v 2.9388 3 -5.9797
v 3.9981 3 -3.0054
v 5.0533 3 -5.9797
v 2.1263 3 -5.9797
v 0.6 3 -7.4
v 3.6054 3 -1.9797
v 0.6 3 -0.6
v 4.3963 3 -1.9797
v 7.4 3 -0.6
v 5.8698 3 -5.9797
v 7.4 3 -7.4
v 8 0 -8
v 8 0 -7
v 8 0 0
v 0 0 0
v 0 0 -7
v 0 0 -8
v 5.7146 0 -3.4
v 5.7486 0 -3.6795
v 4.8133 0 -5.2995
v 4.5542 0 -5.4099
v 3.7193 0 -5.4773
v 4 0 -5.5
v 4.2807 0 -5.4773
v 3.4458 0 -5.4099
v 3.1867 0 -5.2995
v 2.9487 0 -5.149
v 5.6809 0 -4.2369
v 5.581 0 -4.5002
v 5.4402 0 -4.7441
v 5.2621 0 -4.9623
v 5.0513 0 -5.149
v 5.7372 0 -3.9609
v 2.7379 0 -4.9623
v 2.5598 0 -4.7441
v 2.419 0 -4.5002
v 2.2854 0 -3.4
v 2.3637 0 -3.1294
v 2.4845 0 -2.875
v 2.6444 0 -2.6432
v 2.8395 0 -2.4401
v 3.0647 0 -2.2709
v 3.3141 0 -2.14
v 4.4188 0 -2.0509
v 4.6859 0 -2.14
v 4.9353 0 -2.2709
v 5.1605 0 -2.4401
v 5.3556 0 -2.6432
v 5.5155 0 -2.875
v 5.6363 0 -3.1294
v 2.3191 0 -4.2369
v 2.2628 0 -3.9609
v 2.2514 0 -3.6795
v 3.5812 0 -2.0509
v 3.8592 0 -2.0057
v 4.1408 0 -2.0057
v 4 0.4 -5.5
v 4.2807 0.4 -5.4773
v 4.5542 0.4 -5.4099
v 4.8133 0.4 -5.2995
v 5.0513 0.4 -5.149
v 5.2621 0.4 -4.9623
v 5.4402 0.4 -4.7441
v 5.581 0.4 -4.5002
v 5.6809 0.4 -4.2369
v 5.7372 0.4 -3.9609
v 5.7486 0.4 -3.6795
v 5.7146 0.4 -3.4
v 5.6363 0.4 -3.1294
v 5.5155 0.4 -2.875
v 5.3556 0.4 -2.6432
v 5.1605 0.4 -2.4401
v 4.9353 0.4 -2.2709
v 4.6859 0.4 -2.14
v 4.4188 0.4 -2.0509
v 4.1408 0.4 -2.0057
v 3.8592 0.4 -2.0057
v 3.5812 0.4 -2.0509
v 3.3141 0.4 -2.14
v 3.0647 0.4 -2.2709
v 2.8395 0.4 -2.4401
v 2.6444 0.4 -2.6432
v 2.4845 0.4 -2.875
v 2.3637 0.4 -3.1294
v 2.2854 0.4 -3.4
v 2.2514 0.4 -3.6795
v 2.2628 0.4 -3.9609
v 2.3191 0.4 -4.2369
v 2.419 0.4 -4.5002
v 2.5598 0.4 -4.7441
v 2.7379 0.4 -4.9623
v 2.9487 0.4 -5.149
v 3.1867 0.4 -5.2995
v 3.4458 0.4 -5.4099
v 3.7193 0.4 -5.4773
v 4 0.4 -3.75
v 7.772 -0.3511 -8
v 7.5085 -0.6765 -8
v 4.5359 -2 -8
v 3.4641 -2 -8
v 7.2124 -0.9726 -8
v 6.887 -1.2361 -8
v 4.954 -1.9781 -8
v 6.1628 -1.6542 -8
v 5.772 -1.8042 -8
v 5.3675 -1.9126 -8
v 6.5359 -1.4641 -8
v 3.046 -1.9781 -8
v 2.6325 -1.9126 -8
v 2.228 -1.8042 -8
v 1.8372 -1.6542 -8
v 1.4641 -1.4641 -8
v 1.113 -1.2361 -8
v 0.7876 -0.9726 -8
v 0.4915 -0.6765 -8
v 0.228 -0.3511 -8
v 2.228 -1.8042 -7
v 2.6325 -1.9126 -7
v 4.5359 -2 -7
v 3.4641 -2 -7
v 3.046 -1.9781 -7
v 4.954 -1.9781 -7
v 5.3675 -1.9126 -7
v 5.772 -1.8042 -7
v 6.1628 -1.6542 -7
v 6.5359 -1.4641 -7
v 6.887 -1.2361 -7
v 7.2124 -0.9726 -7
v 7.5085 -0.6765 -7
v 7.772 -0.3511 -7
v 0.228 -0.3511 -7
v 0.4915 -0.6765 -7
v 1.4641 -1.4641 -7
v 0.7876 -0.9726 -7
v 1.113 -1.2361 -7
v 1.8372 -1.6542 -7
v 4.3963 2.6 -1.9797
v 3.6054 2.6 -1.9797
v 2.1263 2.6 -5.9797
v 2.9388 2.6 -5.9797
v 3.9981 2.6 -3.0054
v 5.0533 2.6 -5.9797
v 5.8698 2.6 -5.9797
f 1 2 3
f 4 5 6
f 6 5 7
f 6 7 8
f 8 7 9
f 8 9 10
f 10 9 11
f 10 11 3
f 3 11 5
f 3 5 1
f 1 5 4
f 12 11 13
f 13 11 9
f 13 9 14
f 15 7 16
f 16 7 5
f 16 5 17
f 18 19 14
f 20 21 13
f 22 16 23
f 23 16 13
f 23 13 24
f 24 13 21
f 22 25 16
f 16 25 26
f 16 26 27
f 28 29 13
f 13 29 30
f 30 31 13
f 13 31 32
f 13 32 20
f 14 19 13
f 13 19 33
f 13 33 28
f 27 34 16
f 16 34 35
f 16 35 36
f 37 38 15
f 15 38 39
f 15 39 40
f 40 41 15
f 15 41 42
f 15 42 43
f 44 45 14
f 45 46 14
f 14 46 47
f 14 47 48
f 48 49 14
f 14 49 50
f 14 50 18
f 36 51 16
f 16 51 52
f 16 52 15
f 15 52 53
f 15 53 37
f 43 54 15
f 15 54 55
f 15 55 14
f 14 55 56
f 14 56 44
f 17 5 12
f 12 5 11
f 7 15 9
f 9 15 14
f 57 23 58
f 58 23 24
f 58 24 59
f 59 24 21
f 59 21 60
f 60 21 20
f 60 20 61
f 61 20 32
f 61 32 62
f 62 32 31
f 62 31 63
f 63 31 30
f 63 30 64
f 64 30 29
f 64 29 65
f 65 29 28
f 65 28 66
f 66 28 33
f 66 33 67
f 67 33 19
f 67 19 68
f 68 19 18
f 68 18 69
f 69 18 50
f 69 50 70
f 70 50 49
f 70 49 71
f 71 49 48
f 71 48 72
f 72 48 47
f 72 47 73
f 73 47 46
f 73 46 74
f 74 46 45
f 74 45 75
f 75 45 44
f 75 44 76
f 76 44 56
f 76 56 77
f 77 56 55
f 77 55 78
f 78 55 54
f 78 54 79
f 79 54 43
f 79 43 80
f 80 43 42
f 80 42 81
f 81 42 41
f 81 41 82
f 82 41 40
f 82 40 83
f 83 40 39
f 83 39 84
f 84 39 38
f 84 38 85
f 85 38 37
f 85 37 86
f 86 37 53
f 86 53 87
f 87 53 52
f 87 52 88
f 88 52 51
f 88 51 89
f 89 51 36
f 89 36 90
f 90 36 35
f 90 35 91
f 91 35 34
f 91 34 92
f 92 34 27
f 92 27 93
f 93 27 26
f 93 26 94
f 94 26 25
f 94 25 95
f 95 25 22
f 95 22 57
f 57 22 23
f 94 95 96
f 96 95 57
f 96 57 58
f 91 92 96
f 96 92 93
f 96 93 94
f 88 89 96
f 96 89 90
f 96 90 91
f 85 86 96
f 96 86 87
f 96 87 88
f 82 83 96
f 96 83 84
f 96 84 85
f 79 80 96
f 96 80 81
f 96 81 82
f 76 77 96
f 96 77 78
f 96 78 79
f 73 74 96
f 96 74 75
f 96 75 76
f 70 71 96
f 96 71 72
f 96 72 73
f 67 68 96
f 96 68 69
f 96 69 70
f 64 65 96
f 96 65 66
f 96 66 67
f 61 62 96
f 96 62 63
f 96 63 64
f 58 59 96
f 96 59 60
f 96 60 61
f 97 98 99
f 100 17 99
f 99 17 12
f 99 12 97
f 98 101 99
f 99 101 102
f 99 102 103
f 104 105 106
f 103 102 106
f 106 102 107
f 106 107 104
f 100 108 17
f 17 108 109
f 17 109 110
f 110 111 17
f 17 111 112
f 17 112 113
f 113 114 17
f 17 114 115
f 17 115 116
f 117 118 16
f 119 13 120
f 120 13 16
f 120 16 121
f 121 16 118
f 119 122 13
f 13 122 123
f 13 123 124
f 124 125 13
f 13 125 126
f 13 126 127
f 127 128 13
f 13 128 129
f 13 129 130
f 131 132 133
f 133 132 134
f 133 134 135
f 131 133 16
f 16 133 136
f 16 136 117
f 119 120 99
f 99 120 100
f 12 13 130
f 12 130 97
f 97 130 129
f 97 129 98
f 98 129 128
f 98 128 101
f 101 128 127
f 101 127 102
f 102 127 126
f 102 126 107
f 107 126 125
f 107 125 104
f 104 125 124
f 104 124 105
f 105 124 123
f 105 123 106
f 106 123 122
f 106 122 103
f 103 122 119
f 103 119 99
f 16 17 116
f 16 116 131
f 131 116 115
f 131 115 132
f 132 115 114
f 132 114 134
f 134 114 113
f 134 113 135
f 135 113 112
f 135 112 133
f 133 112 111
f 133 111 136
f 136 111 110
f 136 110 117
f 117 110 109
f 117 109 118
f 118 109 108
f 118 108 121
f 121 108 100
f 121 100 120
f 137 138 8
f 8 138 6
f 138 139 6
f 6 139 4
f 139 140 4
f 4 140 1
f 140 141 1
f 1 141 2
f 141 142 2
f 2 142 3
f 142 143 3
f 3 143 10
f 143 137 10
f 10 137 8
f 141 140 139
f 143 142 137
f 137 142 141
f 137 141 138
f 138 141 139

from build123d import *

# Parameters (mm, degrees)
SKETCH1_W               = 8
SKETCH1_H               = 8
BOSS_EXTRUDE1_DEPTH     = 3
CUT_EXTRUDE1_DEPTH      = 12.704699911
CUT_EXTRUDE1_DEPTH_BACK = 12.704699911
CUT_EXTRUDE2_DEPTH      = 11
SKETCH4_R               = 1.75
CUT_EXTRUDE3_DEPTH      = 0.4
SKETCH5_W               = 8
SKETCH5_H               = 1
BOSS_EXTRUDE2_DEPTH     = 2
FILLET1_R               = 4
CUT_EXTRUDE4_DEPTH      = 0.4


with BuildPart() as part:
    # Sketch1 → Boss-Extrude1 (new body)
    with BuildSketch(Plane(origin=(0, 0, 0), x_dir=(1, 0, 0), z_dir=(0, 1, 0))):
        with Locations((4, 4)):
            Rectangle(SKETCH1_W, SKETCH1_H)
    extrude(amount=BOSS_EXTRUDE1_DEPTH)

    # Sketch2 → Cut-Extrude1 (cut, two sides: drawn at the far end of the back side and taken through both)
    with BuildSketch(Plane.XY.offset(-CUT_EXTRUDE1_DEPTH_BACK)):
        Polygon((0, 0), (0.6, 3), (0, 3), align=None)
        Polygon((8, 0), (7.4, 3), (8, 3), align=None)
    extrude(amount=CUT_EXTRUDE1_DEPTH + CUT_EXTRUDE1_DEPTH_BACK, mode=Mode.SUBTRACT)

    # Sketch3 → Cut-Extrude2 (cut)
    with BuildSketch(Plane(origin=(0, 0, 0), x_dir=(0, 0, -1), z_dir=(1, 0, 0))):
        Polygon((0, 0), (0.6, 3), (0, 3), align=None)
        Polygon((8, 3), (7.4, 3), (8, 0), align=None)
    extrude(amount=CUT_EXTRUDE2_DEPTH, mode=Mode.SUBTRACT)

    # Sketch4 → Cut-Extrude3 (cut)
    with BuildSketch(Plane.XZ):
        with Locations(Location((4, -3.75, 0), (0, 0, 270))):
            Circle(SKETCH4_R)
    extrude(amount=-CUT_EXTRUDE3_DEPTH, mode=Mode.SUBTRACT)

    # Sketch5 → Boss-Extrude2 (add)
    with BuildSketch(Plane.XZ):
        with Locations((4, -7.5)):
            Rectangle(SKETCH5_W, SKETCH5_H)
    extrude(amount=BOSS_EXTRUDE2_DEPTH)

    # Fillet1
    # the kernel refuses this fillet: 4 mm, written as the material it takes off along each edge
    with BuildSketch(Plane(origin=(8, -2, -16.660254038), x_dir=(0, 1, 0), z_dir=(0, 0, 1)), Plane(origin=(0, -2, 1.660254038), x_dir=(0, 1, 0), z_dir=(0, 0, -1))) as fillet1_piece_1:
        with BuildLine():
            CenterArc((4, 3.464101615), FILLET1_R, 180, 60)
            Line((0, 3.464101615), (-0.08, 3.464101615))
            Line((-0.08, 3.464101615), (-0.08, 0))
            Line((-0.08, 0), (0, -0.08))
            ThreePointArc((0, -0.08), (1, -0.08), (1.96, -0.069282032))
            Line((1.96, -0.069282032), (2, 0))
        make_face()
    extrude(amount=18.320508076, mode=Mode.SUBTRACT)

    # Sketch6 → Cut-Extrude4 (cut)
    with BuildSketch(Plane(origin=(0, 3, 0), x_dir=(1, 0, 0), z_dir=(0, 1, 0))):
        Polygon((3.605424489, 1.979723732), (2.126257822, 5.979723732), (2.938757822, 5.979723732), (3.998052694, 3.005364758), (5.053341155, 5.979723732), (5.869847566, 5.979723732), (4.396289873, 1.979723732), align=None)
    extrude(amount=-CUT_EXTRUDE4_DEPTH, mode=Mode.SUBTRACT)


solid = part.part
